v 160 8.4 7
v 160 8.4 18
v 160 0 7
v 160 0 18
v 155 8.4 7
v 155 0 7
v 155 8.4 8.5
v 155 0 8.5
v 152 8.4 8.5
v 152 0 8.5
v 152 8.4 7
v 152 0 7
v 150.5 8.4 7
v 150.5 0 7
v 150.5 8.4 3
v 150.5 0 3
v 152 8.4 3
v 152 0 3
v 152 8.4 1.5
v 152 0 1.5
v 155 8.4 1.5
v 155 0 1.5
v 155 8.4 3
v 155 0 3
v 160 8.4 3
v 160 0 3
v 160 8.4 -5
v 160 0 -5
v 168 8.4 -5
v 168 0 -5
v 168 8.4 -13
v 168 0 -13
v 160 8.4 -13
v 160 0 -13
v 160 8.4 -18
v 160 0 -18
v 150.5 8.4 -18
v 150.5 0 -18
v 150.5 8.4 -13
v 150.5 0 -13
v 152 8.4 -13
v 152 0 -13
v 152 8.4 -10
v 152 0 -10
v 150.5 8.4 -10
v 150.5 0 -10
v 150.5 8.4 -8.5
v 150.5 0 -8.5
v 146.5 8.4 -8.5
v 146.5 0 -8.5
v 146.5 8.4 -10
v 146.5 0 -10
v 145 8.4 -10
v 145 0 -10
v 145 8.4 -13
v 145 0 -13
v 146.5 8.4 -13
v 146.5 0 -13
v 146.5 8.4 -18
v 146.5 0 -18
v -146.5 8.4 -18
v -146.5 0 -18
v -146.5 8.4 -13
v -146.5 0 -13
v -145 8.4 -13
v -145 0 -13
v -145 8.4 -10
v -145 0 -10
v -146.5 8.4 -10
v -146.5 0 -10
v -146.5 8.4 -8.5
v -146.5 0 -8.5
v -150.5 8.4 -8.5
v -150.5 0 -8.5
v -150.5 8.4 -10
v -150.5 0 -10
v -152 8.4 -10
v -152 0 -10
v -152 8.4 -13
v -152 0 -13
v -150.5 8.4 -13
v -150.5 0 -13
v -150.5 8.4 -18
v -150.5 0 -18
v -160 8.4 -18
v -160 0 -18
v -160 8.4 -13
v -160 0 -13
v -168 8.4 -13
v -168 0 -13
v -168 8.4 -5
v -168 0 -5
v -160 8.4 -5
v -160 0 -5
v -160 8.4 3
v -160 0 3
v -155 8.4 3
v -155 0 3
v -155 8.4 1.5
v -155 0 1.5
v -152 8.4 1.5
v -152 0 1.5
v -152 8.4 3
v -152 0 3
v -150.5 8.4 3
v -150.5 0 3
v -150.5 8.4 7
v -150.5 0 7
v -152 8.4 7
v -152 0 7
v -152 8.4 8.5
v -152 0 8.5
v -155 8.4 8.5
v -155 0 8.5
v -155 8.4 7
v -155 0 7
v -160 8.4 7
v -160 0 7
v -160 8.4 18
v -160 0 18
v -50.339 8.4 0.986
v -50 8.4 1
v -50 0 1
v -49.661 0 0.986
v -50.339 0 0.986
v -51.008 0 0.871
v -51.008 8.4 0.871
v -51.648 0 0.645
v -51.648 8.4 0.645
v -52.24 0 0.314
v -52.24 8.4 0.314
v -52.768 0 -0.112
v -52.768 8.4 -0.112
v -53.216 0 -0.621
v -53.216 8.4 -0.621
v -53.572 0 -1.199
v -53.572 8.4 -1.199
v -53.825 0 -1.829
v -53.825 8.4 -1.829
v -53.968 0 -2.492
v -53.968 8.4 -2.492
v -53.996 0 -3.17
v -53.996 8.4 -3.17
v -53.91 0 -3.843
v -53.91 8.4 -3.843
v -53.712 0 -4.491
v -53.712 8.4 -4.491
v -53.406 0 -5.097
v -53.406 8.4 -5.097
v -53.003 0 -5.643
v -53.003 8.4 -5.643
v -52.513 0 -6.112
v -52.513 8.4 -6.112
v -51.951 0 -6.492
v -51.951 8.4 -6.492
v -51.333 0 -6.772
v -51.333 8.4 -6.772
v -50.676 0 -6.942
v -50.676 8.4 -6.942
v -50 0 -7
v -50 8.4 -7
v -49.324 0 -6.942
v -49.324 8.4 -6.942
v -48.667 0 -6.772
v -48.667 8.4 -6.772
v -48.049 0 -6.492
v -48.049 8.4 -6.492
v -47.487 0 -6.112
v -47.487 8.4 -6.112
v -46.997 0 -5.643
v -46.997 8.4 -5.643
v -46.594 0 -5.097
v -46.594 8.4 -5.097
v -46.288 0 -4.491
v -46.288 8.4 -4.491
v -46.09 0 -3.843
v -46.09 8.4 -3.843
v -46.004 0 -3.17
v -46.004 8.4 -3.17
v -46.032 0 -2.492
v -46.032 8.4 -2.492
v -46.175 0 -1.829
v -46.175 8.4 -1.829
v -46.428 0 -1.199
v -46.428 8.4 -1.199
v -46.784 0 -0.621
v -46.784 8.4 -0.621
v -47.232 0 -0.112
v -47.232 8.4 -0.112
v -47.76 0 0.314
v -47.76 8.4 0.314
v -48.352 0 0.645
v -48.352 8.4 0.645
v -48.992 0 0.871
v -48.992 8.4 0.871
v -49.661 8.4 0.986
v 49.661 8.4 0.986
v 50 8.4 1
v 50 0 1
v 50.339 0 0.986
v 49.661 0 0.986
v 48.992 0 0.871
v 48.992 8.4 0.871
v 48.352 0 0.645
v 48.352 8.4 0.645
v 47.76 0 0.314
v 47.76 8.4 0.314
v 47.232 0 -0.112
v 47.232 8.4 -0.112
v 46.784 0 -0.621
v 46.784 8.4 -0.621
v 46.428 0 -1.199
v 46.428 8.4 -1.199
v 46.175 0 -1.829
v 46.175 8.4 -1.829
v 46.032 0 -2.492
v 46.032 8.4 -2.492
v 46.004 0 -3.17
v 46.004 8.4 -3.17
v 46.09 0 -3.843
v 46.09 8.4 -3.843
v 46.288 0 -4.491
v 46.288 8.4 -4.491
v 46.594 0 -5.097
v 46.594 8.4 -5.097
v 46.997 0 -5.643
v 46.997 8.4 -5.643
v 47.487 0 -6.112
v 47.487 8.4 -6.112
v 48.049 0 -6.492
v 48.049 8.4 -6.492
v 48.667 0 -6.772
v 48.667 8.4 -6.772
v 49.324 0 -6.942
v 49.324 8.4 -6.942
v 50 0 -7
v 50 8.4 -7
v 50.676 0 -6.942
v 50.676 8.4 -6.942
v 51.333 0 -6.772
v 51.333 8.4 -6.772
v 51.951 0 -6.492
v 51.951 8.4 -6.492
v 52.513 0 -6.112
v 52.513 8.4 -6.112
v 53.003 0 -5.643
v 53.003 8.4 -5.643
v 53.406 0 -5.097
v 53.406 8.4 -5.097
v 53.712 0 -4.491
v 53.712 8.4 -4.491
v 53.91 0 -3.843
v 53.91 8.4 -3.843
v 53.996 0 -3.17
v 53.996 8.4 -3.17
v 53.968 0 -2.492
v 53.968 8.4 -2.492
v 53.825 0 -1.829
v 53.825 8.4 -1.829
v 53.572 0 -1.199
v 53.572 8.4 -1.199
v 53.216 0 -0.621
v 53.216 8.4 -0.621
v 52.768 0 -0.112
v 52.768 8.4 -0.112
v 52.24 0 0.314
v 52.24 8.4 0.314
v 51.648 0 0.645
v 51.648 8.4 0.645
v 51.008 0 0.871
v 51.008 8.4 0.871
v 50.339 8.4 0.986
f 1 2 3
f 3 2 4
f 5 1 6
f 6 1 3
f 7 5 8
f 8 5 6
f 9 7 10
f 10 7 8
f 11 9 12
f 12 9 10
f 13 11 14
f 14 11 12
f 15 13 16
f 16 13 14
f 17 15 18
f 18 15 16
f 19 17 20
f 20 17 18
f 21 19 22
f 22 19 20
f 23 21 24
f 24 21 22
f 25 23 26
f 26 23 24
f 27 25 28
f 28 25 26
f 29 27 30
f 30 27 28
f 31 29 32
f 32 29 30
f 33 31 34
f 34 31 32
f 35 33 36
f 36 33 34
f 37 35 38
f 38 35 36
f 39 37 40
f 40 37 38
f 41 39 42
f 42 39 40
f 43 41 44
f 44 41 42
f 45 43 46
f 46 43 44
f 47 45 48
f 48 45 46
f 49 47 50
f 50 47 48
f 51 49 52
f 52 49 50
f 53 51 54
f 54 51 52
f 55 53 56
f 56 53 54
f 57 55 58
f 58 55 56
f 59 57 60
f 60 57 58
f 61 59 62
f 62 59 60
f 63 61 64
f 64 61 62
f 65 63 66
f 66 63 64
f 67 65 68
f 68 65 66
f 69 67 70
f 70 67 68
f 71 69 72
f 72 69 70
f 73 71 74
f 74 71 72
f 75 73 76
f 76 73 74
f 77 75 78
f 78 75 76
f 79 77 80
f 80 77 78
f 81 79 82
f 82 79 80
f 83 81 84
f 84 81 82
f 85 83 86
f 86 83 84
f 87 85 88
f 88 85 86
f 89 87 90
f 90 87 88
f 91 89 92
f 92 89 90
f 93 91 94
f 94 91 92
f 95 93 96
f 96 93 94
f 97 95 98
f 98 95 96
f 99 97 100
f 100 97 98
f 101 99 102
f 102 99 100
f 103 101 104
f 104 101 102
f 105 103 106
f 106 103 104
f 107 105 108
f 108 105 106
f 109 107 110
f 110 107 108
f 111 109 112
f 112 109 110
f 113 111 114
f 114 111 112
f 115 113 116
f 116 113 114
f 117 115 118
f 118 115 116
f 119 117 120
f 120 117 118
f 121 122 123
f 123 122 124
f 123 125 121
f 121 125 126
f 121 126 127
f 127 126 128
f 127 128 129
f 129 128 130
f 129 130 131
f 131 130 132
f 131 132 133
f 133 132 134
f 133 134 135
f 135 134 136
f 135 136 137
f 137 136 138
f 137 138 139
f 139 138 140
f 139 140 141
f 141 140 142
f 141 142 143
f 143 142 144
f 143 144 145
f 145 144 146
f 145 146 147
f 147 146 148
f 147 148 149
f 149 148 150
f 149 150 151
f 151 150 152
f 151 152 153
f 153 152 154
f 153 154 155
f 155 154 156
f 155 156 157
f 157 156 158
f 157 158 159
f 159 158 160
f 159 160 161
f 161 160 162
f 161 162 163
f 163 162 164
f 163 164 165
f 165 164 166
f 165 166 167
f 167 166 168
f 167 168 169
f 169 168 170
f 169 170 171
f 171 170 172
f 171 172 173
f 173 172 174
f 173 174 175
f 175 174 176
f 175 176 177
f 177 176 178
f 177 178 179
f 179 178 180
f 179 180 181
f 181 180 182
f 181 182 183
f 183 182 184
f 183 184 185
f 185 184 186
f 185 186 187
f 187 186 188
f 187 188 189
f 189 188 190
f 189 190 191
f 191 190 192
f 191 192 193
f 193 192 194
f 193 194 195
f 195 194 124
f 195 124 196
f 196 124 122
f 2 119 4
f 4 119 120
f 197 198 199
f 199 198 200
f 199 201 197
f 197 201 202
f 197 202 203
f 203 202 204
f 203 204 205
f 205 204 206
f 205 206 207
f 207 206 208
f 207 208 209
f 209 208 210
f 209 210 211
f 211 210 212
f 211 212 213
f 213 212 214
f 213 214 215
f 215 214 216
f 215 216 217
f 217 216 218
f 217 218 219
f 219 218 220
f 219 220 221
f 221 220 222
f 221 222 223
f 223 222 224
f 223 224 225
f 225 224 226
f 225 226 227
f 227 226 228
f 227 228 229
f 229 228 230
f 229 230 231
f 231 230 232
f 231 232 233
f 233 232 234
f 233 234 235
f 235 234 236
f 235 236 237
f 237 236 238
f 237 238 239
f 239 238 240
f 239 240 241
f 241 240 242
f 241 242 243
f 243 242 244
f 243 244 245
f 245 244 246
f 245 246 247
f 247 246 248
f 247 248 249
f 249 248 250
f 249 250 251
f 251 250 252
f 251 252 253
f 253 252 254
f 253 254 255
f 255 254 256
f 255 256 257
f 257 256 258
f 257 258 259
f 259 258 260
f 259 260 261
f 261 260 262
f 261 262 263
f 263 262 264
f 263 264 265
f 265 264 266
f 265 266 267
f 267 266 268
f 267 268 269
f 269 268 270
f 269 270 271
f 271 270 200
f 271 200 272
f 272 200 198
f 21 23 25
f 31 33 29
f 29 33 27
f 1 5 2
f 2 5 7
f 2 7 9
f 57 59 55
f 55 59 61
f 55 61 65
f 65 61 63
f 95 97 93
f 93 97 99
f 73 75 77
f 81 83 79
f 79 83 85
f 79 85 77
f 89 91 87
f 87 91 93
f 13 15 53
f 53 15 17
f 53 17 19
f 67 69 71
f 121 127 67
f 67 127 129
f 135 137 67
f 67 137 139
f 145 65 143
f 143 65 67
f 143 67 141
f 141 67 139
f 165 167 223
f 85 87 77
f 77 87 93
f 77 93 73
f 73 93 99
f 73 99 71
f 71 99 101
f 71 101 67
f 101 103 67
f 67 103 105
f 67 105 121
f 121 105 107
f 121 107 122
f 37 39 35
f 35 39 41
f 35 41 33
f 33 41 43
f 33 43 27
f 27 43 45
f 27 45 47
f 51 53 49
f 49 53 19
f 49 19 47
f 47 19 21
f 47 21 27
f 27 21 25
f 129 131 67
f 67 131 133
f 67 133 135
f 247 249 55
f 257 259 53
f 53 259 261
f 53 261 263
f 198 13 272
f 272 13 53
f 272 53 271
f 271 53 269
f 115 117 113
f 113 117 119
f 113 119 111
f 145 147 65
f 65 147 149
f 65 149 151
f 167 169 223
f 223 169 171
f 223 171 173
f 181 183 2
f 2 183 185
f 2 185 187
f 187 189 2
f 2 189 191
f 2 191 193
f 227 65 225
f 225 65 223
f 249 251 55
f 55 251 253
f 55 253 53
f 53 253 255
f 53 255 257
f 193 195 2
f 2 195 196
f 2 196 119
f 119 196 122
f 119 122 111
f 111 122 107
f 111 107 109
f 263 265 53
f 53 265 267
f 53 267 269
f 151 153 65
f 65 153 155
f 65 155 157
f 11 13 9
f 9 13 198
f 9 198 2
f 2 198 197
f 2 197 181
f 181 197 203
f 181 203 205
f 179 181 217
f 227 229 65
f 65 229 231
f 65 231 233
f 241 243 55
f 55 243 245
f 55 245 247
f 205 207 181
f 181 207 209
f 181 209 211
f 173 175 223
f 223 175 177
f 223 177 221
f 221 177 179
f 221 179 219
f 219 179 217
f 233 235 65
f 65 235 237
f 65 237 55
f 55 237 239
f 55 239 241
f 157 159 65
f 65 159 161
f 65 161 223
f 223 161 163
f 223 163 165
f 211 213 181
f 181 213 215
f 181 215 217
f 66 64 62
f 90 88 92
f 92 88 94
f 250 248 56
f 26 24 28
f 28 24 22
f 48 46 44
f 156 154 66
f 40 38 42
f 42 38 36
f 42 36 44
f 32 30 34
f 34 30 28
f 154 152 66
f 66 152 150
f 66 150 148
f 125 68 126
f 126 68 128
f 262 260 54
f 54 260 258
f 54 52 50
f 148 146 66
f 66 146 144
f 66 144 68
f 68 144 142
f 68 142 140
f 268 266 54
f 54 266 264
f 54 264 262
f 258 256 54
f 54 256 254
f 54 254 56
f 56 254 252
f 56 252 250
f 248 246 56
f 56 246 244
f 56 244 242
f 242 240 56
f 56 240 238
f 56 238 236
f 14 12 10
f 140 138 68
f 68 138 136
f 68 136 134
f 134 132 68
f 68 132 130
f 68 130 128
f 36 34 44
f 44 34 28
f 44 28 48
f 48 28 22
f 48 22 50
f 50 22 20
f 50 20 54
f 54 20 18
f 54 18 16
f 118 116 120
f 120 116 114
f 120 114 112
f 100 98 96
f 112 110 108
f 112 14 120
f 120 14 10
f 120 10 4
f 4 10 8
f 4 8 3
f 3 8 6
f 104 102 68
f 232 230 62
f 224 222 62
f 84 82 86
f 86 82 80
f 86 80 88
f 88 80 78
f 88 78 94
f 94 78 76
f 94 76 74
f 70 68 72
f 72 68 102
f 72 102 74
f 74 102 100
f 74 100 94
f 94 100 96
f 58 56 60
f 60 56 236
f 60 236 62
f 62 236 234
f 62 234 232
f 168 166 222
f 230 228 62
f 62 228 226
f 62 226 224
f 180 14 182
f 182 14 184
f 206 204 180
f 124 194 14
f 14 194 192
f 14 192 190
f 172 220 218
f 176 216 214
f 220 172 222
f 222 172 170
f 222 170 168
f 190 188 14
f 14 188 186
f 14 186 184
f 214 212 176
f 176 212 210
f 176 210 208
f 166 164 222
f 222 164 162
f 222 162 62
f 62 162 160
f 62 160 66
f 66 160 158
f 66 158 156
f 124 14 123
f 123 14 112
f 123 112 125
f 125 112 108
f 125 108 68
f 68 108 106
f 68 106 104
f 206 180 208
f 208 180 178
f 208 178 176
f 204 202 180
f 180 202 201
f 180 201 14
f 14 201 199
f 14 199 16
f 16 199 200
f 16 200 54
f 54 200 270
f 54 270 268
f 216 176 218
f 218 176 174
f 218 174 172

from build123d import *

# Parameters (mm, degrees)
SKETCH1_R           = 4
BOSS_EXTRUDE1_DEPTH = 8.4


with BuildPart() as part:
    # Sketch1 → Boss-Extrude1 (new body)
    with BuildSketch(Plane(origin=(0, 0, 0), x_dir=(1, 0, 0), z_dir=(0, 1, 0))):
        Polygon((-160, 18), (-150.5, 18), (-150.5, 13), (-152, 13), (-152, 10), (-150.5, 10), (-150.5, 8.5), (-146.5, 8.5), (-146.5, 10), (-145, 10), (-145, 13), (-146.5, 13), (-146.5, 18), (146.5, 18), (146.5, 13), (145, 13), (145, 10), (146.5, 10), (146.5, 8.5), (150.5, 8.5), (150.5, 10), (152, 10), (152, 13), (150.5, 13), (150.5, 18), (160, 18), (160, 13), (168, 13), (168, 5), (160, 5), (160, -3), (155, -3), (155, -1.5), (152, -1.5), (152, -3), (150.5, -3), (150.5, -7), (152, -7), (152, -8.5), (155, -8.5), (155, -7), (160, -7), (160, -18), (-160, -18), (-160, -7), (-155, -7), (-155, -8.5), (-152, -8.5), (-152, -7), (-150.5, -7), (-150.5, -3), (-152, -3), (-152, -1.5), (-155, -1.5), (-155, -3), (-160, -3), (-160, 5), (-168, 5), (-168, 13), (-160, 13), align=None)
        with Locations((-50, 3)):
            Circle(SKETCH1_R, mode=Mode.SUBTRACT)
        with Locations((50, 3)):
            Circle(SKETCH1_R, mode=Mode.SUBTRACT)
    extrude(amount=BOSS_EXTRUDE1_DEPTH)


solid = part.part
